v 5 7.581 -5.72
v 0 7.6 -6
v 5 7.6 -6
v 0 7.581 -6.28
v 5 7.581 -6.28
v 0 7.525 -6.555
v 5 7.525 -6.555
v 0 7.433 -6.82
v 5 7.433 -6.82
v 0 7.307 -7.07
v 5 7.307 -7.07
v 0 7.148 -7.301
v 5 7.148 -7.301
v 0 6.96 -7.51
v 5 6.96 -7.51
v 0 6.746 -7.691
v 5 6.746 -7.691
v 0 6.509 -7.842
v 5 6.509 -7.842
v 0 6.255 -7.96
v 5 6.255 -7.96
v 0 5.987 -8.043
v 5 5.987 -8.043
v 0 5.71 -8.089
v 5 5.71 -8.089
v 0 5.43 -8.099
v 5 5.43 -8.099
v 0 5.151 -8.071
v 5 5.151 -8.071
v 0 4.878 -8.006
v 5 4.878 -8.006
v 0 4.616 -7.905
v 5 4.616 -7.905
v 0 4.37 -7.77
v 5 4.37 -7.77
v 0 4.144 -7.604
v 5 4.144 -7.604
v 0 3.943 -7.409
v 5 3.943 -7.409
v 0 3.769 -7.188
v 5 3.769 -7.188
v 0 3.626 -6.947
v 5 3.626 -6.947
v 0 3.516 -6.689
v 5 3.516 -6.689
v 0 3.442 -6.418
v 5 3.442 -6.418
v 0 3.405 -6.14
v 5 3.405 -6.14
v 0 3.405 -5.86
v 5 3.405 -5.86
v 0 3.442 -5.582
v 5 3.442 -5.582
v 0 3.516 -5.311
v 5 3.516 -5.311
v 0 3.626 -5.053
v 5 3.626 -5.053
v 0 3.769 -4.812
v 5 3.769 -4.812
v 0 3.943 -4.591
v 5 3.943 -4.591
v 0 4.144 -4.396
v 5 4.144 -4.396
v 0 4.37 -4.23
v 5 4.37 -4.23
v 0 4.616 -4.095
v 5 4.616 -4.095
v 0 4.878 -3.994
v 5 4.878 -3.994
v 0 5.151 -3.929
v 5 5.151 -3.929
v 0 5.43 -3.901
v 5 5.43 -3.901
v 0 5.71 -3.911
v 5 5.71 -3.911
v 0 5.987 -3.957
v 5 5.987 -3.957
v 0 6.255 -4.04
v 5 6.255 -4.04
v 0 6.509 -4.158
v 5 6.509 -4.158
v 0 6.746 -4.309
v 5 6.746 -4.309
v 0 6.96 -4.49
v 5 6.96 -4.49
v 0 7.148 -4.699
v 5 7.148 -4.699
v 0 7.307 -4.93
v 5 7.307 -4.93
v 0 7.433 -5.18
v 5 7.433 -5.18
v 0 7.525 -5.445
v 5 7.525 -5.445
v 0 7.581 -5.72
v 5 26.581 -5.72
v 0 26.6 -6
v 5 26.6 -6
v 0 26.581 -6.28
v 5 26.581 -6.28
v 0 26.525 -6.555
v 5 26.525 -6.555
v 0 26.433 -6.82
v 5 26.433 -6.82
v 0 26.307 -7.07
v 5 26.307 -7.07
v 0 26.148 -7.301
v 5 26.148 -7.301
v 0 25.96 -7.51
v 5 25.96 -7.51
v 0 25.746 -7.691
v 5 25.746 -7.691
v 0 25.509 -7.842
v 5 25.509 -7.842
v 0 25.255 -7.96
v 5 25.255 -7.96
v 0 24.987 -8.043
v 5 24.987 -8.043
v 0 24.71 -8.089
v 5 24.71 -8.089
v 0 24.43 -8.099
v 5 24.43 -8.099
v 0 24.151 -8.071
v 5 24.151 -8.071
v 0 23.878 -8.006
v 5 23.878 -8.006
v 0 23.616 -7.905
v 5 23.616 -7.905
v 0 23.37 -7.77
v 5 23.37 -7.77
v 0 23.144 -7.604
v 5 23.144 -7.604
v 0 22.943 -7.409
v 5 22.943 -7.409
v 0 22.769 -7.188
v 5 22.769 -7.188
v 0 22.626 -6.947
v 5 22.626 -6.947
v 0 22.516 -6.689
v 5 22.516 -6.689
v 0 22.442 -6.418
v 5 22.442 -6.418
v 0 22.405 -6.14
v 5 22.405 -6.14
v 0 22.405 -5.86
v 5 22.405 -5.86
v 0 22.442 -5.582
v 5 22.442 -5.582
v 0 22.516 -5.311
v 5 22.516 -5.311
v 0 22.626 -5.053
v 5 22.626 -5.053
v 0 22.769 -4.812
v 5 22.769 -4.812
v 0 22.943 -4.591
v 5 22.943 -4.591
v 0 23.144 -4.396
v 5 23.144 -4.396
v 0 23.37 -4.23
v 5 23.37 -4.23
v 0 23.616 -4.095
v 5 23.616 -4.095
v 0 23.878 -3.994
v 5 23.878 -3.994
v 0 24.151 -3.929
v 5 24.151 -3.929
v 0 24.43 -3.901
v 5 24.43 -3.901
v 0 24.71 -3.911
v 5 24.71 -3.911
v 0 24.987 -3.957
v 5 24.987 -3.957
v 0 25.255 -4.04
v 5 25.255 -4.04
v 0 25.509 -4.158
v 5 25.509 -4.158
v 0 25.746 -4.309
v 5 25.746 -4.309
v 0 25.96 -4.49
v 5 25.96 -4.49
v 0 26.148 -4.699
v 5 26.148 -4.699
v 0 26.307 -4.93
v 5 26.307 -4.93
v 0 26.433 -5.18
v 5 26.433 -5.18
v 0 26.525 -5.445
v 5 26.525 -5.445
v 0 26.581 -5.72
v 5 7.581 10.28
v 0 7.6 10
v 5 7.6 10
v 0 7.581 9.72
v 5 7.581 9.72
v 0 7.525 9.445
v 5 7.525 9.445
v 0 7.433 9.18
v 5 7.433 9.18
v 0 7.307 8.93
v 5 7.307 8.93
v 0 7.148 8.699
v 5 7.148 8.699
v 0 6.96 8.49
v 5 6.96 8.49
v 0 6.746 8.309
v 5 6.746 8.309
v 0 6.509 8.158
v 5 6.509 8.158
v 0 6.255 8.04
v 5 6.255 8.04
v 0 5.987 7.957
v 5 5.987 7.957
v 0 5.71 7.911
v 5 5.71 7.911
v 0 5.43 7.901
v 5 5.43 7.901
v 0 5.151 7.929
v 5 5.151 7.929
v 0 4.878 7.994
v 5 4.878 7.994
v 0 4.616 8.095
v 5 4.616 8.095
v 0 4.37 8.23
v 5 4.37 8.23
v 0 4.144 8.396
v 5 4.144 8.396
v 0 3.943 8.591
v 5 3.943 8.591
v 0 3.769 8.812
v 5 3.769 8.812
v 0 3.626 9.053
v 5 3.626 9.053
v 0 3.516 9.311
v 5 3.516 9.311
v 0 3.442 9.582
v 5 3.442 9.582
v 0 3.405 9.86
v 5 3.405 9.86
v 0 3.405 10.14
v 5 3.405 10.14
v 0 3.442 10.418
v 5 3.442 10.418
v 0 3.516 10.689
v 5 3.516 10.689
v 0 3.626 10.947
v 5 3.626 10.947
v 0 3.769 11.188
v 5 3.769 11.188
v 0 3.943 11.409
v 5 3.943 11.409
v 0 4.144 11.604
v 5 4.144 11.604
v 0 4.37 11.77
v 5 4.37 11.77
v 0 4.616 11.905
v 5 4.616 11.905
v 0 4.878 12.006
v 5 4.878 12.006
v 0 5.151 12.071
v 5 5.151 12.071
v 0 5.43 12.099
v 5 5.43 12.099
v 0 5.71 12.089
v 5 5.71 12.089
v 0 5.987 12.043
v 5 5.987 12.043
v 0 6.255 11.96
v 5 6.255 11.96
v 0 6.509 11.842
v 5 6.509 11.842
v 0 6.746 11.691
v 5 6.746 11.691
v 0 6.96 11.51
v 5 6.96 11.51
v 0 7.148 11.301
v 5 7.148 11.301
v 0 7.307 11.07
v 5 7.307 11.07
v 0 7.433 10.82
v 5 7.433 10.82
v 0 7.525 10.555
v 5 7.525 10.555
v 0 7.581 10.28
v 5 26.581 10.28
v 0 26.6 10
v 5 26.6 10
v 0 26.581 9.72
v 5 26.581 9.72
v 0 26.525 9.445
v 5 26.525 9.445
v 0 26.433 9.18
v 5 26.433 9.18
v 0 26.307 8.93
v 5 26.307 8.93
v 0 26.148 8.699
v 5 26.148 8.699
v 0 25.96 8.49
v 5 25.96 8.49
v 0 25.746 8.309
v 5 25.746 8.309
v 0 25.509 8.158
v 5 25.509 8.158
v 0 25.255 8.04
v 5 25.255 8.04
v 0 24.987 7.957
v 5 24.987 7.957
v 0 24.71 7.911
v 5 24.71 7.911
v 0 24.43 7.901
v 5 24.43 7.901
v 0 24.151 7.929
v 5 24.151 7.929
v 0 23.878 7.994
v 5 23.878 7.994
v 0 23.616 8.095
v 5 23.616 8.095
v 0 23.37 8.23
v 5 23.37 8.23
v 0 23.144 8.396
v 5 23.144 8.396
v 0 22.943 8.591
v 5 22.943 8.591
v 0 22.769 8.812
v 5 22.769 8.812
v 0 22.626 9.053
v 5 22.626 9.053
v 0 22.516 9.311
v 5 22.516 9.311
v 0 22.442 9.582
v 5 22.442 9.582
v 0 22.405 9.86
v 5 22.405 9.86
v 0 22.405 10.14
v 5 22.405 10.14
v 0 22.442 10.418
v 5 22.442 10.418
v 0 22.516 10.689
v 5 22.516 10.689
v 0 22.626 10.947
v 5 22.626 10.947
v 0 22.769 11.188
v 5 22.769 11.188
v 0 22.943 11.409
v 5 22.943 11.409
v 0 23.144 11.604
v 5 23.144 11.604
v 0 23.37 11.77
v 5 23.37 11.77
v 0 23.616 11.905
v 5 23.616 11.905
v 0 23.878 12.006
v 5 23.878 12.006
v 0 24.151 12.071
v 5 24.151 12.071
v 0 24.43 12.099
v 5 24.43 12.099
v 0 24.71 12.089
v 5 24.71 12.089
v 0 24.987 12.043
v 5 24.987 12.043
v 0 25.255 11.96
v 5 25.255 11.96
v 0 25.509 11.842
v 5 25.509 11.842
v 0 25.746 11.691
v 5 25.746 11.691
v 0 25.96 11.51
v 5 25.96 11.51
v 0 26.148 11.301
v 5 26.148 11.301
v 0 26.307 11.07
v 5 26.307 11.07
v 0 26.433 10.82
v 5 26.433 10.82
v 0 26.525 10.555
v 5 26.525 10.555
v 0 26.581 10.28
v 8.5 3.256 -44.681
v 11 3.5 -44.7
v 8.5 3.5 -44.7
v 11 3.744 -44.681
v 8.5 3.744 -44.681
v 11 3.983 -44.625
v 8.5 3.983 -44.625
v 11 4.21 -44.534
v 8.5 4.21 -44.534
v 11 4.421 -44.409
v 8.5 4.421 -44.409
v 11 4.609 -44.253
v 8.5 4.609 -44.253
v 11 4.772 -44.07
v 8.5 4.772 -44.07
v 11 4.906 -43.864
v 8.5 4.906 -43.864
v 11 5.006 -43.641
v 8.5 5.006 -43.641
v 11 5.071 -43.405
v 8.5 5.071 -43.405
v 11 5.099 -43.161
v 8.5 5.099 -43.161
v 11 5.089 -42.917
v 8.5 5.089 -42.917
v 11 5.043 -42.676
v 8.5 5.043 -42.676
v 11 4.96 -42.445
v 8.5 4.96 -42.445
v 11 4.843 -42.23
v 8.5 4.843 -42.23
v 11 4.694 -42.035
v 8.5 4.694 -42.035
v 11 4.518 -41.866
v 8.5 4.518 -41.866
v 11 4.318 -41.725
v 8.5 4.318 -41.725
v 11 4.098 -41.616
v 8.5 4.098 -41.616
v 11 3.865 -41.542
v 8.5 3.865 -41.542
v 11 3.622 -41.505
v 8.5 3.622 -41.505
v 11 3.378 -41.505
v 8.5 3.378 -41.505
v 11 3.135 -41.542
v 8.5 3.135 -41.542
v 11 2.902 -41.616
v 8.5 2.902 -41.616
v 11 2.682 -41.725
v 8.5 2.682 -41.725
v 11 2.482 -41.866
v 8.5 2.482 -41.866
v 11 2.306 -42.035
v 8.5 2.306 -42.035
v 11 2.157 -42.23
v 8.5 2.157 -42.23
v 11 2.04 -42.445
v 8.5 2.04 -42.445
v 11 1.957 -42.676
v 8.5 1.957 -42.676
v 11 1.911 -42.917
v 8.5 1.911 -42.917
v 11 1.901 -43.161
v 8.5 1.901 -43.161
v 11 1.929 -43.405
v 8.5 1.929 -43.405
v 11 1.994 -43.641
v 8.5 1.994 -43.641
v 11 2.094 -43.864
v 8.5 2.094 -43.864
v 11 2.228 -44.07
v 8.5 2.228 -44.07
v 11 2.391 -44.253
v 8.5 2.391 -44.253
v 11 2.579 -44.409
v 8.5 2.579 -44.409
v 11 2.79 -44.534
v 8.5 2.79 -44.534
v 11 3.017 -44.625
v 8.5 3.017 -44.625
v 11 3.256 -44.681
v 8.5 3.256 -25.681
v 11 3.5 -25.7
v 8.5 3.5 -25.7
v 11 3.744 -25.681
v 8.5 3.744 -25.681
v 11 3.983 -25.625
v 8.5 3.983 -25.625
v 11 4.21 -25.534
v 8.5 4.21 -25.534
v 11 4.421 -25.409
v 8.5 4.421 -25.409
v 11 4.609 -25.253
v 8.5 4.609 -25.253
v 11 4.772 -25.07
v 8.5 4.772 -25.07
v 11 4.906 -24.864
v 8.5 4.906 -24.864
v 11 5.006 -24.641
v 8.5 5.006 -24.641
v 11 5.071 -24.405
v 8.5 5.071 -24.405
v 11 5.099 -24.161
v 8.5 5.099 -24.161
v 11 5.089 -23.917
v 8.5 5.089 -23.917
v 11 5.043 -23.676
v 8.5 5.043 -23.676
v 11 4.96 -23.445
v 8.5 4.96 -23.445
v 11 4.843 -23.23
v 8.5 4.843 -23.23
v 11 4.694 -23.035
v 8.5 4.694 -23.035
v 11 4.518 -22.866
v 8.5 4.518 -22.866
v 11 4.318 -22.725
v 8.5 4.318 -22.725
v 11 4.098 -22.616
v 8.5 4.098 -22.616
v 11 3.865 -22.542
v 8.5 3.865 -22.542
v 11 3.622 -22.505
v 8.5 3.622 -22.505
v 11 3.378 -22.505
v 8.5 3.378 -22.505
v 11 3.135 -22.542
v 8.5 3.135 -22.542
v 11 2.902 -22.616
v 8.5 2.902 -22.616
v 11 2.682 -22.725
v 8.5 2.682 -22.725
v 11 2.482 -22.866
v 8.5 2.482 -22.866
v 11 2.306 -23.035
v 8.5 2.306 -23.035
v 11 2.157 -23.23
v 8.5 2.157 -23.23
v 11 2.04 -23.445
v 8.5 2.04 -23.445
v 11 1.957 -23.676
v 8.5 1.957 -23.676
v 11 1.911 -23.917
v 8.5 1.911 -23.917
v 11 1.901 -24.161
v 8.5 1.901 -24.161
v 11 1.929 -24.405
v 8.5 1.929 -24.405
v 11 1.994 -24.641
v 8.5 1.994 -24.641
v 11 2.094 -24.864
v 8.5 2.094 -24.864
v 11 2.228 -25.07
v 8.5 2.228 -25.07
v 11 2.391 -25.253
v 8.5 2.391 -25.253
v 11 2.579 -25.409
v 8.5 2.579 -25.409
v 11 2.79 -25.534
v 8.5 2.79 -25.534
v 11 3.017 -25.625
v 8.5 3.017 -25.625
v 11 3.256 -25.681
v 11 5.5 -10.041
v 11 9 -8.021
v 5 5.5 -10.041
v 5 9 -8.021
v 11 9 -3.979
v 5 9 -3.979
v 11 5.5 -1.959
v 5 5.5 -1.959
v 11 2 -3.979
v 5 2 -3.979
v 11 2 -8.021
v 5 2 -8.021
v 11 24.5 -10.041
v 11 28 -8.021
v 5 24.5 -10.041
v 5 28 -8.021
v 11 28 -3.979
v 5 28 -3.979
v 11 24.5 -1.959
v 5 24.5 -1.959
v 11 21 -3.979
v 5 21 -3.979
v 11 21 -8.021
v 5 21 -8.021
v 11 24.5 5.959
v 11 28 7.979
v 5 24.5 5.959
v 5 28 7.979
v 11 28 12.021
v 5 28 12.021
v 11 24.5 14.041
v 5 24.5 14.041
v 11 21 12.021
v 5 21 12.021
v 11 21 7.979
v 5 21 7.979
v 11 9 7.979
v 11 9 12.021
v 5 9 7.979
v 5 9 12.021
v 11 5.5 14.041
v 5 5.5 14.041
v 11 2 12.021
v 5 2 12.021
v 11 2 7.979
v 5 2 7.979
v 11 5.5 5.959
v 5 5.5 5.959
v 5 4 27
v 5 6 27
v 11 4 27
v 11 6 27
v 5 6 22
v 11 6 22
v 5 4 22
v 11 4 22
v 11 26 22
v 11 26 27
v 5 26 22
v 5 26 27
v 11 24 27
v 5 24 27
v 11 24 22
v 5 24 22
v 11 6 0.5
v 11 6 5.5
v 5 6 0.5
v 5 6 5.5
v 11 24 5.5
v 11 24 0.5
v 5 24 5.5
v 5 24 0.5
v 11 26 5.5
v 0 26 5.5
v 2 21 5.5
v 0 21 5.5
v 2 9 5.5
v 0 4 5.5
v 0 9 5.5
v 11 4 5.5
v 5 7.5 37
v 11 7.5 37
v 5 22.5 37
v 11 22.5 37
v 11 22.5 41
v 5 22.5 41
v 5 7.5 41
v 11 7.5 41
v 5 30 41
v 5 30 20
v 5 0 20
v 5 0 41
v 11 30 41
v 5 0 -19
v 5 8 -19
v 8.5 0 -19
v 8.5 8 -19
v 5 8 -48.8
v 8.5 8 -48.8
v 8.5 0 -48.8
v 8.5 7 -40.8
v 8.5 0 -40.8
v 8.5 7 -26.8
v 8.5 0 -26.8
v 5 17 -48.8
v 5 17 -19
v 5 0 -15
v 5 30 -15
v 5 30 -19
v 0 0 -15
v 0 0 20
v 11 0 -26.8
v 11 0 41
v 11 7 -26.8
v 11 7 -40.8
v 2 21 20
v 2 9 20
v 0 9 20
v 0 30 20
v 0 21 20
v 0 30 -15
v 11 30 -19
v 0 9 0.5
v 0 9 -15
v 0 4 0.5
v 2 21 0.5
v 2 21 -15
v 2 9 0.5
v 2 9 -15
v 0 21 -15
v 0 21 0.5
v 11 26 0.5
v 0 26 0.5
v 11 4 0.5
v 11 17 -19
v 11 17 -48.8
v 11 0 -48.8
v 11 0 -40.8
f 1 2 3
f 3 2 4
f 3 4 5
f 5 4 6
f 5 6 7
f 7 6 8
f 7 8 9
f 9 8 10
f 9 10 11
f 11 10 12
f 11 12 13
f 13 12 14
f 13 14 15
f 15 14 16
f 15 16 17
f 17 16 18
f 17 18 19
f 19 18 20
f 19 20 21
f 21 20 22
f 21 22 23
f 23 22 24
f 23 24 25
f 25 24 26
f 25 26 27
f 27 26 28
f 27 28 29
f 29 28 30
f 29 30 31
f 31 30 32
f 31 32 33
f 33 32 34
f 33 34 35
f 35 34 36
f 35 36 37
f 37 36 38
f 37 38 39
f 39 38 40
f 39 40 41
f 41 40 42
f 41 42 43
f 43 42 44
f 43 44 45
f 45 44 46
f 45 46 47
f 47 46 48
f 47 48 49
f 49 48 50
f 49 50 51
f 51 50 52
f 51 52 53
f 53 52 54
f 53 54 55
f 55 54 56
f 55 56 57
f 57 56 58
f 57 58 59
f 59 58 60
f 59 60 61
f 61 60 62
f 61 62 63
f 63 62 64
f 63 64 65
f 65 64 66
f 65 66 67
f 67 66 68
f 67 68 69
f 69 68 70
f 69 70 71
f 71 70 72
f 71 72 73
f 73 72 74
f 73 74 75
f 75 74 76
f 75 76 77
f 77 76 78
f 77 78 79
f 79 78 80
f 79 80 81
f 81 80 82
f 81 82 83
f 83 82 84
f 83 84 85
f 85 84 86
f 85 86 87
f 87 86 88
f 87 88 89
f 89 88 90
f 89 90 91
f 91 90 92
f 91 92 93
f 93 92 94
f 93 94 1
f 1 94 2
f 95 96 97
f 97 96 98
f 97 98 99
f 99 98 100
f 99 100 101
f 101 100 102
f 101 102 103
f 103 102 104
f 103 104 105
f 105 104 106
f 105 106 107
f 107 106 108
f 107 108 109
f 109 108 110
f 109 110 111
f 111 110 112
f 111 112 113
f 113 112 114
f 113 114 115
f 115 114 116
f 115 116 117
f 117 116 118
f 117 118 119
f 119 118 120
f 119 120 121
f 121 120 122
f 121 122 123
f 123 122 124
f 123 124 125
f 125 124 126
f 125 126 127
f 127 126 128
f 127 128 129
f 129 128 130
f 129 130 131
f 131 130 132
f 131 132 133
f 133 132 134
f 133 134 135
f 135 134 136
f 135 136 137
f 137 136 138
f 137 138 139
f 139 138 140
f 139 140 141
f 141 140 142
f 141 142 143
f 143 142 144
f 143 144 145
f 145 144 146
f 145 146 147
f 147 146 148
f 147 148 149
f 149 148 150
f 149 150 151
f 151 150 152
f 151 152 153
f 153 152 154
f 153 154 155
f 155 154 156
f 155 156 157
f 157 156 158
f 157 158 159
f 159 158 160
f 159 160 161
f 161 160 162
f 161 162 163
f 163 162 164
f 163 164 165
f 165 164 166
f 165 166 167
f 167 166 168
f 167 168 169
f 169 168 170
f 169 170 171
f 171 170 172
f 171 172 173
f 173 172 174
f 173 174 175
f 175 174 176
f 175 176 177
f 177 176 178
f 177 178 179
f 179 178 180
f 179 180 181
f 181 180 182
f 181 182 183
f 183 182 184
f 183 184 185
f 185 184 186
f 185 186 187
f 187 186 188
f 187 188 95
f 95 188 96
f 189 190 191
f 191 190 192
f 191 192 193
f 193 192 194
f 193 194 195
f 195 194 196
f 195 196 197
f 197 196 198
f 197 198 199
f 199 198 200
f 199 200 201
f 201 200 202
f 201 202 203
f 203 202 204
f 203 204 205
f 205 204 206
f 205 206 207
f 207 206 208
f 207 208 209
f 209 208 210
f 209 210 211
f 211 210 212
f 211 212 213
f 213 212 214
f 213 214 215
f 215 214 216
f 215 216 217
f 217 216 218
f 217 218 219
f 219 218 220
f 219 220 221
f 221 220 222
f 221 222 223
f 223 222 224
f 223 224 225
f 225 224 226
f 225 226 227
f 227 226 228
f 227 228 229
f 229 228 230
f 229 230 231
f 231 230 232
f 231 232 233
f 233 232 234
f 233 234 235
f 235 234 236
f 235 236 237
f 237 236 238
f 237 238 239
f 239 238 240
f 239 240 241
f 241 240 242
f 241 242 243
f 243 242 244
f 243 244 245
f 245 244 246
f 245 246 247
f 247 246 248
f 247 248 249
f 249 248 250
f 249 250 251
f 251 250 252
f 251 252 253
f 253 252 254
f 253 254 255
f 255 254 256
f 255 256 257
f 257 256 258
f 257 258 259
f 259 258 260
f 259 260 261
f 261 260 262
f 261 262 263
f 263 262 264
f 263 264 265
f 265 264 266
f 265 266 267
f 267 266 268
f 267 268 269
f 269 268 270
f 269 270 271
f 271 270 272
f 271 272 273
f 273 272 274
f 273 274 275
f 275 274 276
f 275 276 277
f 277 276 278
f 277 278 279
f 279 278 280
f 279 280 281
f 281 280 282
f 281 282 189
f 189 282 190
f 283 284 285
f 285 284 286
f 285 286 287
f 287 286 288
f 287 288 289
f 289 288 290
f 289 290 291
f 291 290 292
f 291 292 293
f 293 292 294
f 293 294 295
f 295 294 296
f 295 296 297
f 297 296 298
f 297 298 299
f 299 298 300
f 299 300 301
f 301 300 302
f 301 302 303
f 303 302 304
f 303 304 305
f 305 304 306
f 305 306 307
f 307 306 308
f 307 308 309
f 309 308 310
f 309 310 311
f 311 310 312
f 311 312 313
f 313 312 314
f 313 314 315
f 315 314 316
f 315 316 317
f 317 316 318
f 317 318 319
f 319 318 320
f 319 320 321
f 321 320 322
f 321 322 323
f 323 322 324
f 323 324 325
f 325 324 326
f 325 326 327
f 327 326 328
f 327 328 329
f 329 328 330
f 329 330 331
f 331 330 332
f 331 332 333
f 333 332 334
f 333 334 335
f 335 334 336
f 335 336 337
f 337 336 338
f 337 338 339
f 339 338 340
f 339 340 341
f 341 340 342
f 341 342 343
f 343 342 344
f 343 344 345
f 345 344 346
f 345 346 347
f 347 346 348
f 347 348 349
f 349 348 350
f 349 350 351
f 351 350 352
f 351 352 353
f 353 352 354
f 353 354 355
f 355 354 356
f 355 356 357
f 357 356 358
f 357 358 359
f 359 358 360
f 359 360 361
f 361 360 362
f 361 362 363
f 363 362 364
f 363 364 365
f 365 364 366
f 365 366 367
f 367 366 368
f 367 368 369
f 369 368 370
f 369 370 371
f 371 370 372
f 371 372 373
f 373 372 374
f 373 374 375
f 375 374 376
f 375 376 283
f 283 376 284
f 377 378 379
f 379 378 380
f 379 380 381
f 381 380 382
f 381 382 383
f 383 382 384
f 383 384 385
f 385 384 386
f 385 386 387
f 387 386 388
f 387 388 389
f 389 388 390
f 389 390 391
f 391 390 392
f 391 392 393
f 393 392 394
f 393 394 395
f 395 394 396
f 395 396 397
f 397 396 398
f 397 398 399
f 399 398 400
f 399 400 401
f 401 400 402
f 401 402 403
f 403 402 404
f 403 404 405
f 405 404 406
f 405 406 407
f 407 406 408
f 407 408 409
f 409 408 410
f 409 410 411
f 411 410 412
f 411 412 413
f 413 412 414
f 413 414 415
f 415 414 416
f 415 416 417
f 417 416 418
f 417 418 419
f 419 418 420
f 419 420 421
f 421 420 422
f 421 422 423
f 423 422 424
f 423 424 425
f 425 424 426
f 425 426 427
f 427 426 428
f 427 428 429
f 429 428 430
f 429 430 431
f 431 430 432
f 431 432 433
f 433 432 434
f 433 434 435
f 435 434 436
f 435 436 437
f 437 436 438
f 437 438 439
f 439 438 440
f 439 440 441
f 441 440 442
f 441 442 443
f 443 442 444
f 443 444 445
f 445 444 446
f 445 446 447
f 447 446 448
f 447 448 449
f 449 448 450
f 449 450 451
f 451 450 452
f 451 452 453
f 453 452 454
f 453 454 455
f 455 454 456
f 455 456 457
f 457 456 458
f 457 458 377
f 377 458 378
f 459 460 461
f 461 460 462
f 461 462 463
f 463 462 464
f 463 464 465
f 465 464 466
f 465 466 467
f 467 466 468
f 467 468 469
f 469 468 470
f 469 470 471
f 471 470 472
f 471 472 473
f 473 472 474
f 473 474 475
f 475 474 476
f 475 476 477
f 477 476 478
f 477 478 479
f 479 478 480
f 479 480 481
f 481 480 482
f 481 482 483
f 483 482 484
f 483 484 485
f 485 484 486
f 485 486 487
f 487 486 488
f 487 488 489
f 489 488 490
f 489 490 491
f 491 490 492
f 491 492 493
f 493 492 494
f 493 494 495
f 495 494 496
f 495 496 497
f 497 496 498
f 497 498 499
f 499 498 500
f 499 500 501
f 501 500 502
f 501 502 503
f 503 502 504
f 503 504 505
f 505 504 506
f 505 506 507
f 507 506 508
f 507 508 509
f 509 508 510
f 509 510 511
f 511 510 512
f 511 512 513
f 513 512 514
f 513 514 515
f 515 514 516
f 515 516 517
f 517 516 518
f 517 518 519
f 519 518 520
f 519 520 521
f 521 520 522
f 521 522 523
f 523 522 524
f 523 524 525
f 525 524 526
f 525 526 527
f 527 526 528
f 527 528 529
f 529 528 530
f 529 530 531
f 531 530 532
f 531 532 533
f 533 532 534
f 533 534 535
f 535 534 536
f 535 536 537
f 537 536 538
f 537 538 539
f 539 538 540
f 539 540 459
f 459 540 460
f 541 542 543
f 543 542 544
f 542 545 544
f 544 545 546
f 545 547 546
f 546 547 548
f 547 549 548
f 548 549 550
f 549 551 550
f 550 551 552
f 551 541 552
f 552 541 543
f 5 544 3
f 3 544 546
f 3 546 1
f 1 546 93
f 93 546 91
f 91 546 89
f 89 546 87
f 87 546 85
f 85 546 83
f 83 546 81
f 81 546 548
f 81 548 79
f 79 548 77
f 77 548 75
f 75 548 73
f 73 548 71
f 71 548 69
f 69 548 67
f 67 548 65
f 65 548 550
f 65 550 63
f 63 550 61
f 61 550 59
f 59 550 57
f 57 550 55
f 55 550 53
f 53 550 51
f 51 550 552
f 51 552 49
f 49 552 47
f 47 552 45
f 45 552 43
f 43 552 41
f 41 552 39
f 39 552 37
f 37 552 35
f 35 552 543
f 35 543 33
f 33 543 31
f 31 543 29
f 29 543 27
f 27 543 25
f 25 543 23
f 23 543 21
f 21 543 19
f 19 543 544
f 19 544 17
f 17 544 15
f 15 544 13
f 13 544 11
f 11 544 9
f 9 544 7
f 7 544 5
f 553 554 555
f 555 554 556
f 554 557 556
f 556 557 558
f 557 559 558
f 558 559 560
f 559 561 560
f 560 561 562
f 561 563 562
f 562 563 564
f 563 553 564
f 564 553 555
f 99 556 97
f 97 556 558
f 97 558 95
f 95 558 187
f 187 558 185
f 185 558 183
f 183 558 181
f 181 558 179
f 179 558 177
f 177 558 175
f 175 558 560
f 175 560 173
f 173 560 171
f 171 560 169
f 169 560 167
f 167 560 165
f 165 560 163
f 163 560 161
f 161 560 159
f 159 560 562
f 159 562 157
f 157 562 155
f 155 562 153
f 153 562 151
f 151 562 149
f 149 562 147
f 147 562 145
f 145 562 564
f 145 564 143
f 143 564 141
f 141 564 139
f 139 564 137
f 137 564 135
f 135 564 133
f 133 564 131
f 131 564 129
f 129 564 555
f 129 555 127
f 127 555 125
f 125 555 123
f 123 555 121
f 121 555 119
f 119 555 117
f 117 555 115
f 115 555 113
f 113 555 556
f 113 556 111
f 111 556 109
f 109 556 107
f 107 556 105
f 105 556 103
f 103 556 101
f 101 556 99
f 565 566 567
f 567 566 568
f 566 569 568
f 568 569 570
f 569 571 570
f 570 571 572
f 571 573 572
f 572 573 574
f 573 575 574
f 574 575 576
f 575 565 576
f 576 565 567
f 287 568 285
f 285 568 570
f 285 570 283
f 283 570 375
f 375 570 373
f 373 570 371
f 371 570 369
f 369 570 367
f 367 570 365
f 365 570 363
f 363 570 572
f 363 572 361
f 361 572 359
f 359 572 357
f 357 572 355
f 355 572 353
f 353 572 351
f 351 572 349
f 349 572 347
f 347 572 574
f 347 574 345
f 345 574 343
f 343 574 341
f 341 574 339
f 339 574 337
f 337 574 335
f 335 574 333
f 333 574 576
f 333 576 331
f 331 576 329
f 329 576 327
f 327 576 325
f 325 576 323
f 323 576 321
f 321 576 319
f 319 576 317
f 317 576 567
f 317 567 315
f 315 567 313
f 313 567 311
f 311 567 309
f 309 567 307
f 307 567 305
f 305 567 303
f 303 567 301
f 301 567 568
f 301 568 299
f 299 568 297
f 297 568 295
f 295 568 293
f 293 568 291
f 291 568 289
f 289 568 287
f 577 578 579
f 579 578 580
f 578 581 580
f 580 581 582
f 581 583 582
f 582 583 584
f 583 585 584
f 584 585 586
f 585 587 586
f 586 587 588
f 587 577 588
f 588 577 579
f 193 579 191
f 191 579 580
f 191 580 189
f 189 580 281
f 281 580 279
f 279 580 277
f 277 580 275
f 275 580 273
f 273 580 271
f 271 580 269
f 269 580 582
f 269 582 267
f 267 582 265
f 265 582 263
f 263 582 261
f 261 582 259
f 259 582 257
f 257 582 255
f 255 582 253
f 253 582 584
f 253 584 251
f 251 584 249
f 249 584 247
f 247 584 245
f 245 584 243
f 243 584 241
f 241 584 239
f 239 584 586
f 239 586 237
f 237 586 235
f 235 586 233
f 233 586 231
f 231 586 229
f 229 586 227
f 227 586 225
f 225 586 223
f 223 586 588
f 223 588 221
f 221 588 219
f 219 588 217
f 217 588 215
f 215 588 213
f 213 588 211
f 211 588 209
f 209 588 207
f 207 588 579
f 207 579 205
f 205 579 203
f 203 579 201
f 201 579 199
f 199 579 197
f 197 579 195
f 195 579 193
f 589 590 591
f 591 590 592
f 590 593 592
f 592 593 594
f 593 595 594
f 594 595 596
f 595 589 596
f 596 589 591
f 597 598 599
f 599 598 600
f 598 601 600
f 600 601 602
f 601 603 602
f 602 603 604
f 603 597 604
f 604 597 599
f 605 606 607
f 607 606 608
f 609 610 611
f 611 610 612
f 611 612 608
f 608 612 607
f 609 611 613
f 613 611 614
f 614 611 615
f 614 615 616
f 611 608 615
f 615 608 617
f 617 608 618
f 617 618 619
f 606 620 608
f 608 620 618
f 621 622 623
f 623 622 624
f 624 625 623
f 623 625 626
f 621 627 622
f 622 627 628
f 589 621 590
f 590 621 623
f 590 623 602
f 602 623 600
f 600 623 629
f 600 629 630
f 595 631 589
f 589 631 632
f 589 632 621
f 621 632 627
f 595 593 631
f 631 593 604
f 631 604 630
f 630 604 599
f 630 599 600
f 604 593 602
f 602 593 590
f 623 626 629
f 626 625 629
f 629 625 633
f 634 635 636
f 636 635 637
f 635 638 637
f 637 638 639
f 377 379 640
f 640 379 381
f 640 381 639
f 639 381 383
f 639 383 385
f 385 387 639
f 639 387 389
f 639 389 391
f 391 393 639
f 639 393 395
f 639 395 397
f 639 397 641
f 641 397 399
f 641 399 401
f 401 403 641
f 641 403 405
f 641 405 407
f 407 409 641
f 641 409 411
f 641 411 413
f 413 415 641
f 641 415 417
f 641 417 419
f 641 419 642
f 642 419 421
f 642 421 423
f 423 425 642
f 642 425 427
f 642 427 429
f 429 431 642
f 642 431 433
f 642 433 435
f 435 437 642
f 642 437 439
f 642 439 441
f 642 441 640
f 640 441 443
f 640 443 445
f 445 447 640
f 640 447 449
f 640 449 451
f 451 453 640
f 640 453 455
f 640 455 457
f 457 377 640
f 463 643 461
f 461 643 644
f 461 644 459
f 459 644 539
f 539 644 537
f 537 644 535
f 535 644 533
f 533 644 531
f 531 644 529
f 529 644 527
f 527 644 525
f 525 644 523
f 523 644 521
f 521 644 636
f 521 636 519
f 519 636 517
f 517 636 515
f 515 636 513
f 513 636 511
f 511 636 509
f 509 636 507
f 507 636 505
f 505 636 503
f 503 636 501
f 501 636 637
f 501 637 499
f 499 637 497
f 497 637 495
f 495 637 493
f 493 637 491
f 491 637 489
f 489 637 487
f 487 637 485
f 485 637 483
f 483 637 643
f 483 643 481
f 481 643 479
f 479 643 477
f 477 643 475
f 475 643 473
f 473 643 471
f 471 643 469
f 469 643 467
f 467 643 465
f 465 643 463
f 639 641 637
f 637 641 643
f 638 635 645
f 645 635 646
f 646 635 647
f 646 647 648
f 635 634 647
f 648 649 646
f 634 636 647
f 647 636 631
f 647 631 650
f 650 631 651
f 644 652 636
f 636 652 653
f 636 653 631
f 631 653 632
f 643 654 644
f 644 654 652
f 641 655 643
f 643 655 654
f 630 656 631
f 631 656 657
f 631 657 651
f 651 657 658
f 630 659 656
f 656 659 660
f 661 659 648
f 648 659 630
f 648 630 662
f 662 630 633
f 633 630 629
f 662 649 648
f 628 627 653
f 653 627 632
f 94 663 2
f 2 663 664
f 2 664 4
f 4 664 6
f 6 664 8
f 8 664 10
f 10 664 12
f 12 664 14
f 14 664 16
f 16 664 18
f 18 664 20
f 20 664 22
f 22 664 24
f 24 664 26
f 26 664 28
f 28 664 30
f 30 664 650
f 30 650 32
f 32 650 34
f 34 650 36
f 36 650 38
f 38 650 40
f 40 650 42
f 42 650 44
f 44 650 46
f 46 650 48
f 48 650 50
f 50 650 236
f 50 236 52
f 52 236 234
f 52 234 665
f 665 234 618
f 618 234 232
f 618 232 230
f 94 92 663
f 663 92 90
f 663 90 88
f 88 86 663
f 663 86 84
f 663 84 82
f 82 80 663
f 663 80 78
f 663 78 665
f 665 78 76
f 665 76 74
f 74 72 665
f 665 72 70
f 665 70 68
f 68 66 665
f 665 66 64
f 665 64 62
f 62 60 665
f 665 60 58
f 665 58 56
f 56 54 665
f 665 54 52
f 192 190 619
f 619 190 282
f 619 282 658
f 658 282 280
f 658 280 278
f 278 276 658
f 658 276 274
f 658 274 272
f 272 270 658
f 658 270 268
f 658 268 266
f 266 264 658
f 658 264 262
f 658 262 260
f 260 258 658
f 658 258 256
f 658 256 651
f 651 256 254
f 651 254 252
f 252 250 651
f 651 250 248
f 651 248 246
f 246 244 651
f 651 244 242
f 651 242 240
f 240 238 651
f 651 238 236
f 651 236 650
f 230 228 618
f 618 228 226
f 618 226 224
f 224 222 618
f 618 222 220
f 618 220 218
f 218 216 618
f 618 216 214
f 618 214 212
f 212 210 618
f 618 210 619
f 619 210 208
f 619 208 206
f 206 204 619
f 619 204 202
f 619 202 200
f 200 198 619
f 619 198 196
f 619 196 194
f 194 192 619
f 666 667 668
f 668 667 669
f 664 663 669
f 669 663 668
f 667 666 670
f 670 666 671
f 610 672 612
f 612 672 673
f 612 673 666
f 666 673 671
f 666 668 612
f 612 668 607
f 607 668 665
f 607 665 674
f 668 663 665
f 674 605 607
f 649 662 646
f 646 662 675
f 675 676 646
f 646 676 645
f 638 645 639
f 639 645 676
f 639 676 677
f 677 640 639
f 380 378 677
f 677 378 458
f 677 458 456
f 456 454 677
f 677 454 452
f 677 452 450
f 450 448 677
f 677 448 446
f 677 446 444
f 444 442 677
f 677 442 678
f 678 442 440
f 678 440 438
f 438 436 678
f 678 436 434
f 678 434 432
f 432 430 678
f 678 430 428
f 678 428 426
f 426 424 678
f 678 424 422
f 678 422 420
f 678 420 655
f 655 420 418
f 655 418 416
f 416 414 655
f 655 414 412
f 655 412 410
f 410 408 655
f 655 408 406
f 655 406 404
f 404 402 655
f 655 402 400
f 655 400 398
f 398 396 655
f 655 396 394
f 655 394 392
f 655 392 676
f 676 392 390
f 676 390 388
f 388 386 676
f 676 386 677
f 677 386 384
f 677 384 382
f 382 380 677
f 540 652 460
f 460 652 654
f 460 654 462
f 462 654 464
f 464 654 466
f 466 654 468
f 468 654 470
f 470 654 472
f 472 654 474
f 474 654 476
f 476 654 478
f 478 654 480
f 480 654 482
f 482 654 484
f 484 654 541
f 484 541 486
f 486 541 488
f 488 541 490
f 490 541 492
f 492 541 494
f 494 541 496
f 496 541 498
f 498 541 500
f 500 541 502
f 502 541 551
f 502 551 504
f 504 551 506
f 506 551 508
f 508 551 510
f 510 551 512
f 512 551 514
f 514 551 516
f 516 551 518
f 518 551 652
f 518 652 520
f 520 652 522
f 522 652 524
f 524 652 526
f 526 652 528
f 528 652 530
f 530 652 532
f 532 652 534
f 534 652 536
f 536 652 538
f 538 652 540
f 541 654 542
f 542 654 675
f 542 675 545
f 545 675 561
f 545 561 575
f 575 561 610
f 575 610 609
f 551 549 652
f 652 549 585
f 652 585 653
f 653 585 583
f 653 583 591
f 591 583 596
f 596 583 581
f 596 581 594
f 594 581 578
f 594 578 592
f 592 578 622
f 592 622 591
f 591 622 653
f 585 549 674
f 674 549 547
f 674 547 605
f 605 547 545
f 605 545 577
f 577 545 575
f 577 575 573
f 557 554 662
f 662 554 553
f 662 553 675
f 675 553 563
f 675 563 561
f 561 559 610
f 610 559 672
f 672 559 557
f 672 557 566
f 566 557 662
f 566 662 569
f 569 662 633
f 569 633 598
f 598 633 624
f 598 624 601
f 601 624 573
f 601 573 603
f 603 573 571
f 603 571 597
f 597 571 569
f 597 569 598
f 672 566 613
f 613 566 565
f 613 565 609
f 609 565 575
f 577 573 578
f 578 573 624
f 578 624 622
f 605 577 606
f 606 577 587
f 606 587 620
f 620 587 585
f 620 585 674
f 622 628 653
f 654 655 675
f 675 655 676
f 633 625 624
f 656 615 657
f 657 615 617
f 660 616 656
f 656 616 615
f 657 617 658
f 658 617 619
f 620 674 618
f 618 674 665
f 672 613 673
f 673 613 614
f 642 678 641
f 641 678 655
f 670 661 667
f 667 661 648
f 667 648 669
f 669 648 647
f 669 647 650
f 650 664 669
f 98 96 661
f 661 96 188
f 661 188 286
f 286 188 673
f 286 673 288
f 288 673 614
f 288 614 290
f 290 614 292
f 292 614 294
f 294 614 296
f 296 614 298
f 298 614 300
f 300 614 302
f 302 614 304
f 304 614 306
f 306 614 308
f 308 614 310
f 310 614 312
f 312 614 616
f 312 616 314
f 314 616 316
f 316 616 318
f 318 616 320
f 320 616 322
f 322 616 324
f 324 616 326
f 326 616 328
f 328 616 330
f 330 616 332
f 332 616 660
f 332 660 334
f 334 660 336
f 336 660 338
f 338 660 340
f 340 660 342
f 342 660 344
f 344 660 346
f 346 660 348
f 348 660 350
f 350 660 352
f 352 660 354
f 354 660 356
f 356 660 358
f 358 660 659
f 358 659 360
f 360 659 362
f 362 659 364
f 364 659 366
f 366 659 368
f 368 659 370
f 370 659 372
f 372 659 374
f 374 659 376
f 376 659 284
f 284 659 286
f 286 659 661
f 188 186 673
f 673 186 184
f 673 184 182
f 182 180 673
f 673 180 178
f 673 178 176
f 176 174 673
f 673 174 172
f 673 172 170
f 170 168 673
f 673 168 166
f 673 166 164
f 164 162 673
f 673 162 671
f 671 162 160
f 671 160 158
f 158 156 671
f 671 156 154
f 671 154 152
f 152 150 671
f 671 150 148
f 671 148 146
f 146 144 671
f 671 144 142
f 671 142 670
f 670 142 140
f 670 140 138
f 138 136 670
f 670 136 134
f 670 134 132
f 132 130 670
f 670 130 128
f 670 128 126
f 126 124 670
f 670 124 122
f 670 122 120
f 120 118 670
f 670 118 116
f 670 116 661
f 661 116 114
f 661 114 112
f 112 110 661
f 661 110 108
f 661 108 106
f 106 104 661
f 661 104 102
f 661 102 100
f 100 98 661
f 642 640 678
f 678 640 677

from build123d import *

# Parameters (mm, degrees)
BOSS_EXTRUDE1_DEPTH = 30
CUT_EXTRUDE1_REACH  = 53.981
SKETCH2_R           = 2.1
CUT_EXTRUDE2_DEPTH  = 6
SKETCH4_W           = 5
SKETCH4_H           = 2
CUT_EXTRUDE3_DEPTH  = 52.980765673
SKETCH5_W           = 5
SKETCH5_H           = 18
CUT_EXTRUDE4_DEPTH  = 5
SKETCH6_W           = 4
SKETCH6_H           = 15
CUT_EXTRUDE5_DEPTH  = 52.15662225
BOSS_EXTRUDE2_DEPTH = 5
SKETCH7_W           = 2
SKETCH7_H           = 12
CUT_EXTRUDE6_DEPTH  = 51.418250664
LPATTERN1_COUNT     = 2
LPATTERN1_PITCH     = 16
BOSS_EXTRUDE3_DEPTH = 2.5
SKETCH10_W          = 29.8
SKETCH10_H          = 9
BOSS_EXTRUDE4_DEPTH = 3.5
SKETCH11_R          = 1.6
CUT_EXTRUDE7_DEPTH  = 59.330438023


with BuildPart() as part:
    # Sketch1 → Boss-Extrude1 (new body)
    with BuildSketch(Plane(origin=(0, 0, 0), x_dir=(1, 0, 0), z_dir=(0, 1, 0))):
        Polygon((0, 0), (5, 0), (5, 19), (11, 19), (11, -41), (5, -41), (5, -20), (0, -20), align=None)
    extrude(amount=BOSS_EXTRUDE1_DEPTH)

    # Sketch2 → Cut-Extrude1 (cut, up to next)
    with BuildSketch(Plane(origin=(11, 0, 0), x_dir=(0, 0, -1), z_dir=(1, 0, 0)), mode=Mode.PRIVATE) as cut_extrude1_sk1:
        with Locations((-10, 24.5)):
            Circle(SKETCH2_R)
    cut_extrude1_tool1 = extrude(cut_extrude1_sk1.sketch, amount=-CUT_EXTRUDE1_REACH, mode=Mode.PRIVATE) & part.part
    # Sketch2 → Cut-Extrude1 (cut, up to next)
    with BuildSketch(Plane(origin=(11, 0, 0), x_dir=(0, 0, -1), z_dir=(1, 0, 0)), mode=Mode.PRIVATE) as cut_extrude1_sk2:
        with Locations((-10, 5.5)):
            Circle(SKETCH2_R)
    cut_extrude1_tool2 = extrude(cut_extrude1_sk2.sketch, amount=-CUT_EXTRUDE1_REACH, mode=Mode.PRIVATE) & part.part
    cut_extrude1_1 = cut_extrude1_tool1.solids().sort_by_distance((11, 24.5, 10))[0]
    add(cut_extrude1_1, mode=Mode.SUBTRACT)
    cut_extrude1_2 = cut_extrude1_tool2.solids().sort_by_distance((11, 5.5, 10))[0]
    add(cut_extrude1_2, mode=Mode.SUBTRACT)
    cut_extrude1 = cut_extrude1_1 + cut_extrude1_2  # Cut-Extrude1 as one shape, for the pattern or mirror that repeats it

    # Sketch3 → Cut-Extrude2 (cut)
    with BuildSketch(Plane(origin=(11, 0, 0), x_dir=(0, 0, -1), z_dir=(1, 0, 0))):
        Polygon((-14.041451884, 24.5), (-12.020725942, 21), (-7.979274058, 21), (-5.958548116, 24.5), (-7.979274058, 28), (-12.020725942, 28), align=None)
        Polygon((-14.041451884, 5.5), (-12.020725942, 2), (-7.979274058, 2), (-5.958548116, 5.5), (-7.979274058, 9), (-12.020725942, 9), align=None)
    cut_extrude2 = extrude(amount=-CUT_EXTRUDE2_DEPTH, mode=Mode.SUBTRACT)

    # Sketch4 → Cut-Extrude3 (cut, through all)
    with BuildSketch(Plane(origin=(11, 0, 0), x_dir=(0, 0, -1), z_dir=(1, 0, 0))):
        with Locations((-24.5, 25)):
            Rectangle(SKETCH4_W, SKETCH4_H)
        with Locations((-24.5, 5)):
            Rectangle(SKETCH4_W, SKETCH4_H)
        with Locations((-3, 25)):
            Rectangle(SKETCH4_W, SKETCH4_H)
        with Locations((-3, 5)):
            Rectangle(SKETCH4_W, SKETCH4_H)
    extrude(amount=-CUT_EXTRUDE3_DEPTH, mode=Mode.SUBTRACT)

    # Sketch5 → Cut-Extrude4 (cut)
    with BuildSketch(Plane.ZY):
        with Locations((3, 15)):
            Rectangle(SKETCH5_W, SKETCH5_H)
    extrude(amount=-CUT_EXTRUDE4_DEPTH, mode=Mode.SUBTRACT)

    # Sketch6 → Cut-Extrude5 (cut, through all)
    with BuildSketch(Plane.ZY.offset(-5)):
        with Locations((39, 15)):
            Rectangle(SKETCH6_W, SKETCH6_H)
    extrude(amount=-CUT_EXTRUDE5_DEPTH, mode=Mode.SUBTRACT)

    # Sketch8 → Boss-Extrude2 (add)
    with BuildSketch(Plane.ZY.offset(-5)):
        Polygon((0, 30), (0, 14.791308029), (0, 0), (-15, 0), (-15, 30), align=None)
    extrude(amount=BOSS_EXTRUDE2_DEPTH)

    # Sketch7 → Cut-Extrude6 (cut, through all)
    with BuildSketch(Plane.XY.offset(20)):
        with Locations((1, 15)):
            Rectangle(SKETCH7_W, SKETCH7_H)
    extrude(amount=-CUT_EXTRUDE6_DEPTH, mode=Mode.SUBTRACT)

    # LPattern1: Cut-Extrude1, Cut-Extrude2 ×2
    with Locations(*[(0, 0, -i * LPATTERN1_PITCH) for i in range(1, LPATTERN1_COUNT)]):
        add(cut_extrude1, mode=Mode.SUBTRACT)
        add(cut_extrude2, mode=Mode.SUBTRACT)

    # Sketch9 → Boss-Extrude3 (add)
    with BuildSketch(Plane(origin=(11, 0, 0), x_dir=(0, 0, -1), z_dir=(1, 0, 0))):
        Polygon((19, 0), (26.8, 0), (26.8, 7), (40.8, 7), (40.8, 0), (48.8, 0), (48.8, 17), (19, 17), align=None)
    extrude(amount=-BOSS_EXTRUDE3_DEPTH)

    # Sketch10 → Boss-Extrude4 (add)
    with BuildSketch(Plane.ZY.offset(-8.5)):
        with Locations((-33.9, 12.5)):
            Rectangle(SKETCH10_W, SKETCH10_H)
    extrude(amount=BOSS_EXTRUDE4_DEPTH)

    # Sketch11 → Cut-Extrude7 (cut, through all)
    with BuildSketch(Plane(origin=(11, 0, 0), x_dir=(0, 0, -1), z_dir=(1, 0, 0))):
        with Locations((43.1, 3.5)):
            Circle(SKETCH11_R)
        with Locations((24.1, 3.5)):
            Circle(SKETCH11_R)
    extrude(amount=-CUT_EXTRUDE7_DEPTH, mode=Mode.SUBTRACT)


solid = part.part
